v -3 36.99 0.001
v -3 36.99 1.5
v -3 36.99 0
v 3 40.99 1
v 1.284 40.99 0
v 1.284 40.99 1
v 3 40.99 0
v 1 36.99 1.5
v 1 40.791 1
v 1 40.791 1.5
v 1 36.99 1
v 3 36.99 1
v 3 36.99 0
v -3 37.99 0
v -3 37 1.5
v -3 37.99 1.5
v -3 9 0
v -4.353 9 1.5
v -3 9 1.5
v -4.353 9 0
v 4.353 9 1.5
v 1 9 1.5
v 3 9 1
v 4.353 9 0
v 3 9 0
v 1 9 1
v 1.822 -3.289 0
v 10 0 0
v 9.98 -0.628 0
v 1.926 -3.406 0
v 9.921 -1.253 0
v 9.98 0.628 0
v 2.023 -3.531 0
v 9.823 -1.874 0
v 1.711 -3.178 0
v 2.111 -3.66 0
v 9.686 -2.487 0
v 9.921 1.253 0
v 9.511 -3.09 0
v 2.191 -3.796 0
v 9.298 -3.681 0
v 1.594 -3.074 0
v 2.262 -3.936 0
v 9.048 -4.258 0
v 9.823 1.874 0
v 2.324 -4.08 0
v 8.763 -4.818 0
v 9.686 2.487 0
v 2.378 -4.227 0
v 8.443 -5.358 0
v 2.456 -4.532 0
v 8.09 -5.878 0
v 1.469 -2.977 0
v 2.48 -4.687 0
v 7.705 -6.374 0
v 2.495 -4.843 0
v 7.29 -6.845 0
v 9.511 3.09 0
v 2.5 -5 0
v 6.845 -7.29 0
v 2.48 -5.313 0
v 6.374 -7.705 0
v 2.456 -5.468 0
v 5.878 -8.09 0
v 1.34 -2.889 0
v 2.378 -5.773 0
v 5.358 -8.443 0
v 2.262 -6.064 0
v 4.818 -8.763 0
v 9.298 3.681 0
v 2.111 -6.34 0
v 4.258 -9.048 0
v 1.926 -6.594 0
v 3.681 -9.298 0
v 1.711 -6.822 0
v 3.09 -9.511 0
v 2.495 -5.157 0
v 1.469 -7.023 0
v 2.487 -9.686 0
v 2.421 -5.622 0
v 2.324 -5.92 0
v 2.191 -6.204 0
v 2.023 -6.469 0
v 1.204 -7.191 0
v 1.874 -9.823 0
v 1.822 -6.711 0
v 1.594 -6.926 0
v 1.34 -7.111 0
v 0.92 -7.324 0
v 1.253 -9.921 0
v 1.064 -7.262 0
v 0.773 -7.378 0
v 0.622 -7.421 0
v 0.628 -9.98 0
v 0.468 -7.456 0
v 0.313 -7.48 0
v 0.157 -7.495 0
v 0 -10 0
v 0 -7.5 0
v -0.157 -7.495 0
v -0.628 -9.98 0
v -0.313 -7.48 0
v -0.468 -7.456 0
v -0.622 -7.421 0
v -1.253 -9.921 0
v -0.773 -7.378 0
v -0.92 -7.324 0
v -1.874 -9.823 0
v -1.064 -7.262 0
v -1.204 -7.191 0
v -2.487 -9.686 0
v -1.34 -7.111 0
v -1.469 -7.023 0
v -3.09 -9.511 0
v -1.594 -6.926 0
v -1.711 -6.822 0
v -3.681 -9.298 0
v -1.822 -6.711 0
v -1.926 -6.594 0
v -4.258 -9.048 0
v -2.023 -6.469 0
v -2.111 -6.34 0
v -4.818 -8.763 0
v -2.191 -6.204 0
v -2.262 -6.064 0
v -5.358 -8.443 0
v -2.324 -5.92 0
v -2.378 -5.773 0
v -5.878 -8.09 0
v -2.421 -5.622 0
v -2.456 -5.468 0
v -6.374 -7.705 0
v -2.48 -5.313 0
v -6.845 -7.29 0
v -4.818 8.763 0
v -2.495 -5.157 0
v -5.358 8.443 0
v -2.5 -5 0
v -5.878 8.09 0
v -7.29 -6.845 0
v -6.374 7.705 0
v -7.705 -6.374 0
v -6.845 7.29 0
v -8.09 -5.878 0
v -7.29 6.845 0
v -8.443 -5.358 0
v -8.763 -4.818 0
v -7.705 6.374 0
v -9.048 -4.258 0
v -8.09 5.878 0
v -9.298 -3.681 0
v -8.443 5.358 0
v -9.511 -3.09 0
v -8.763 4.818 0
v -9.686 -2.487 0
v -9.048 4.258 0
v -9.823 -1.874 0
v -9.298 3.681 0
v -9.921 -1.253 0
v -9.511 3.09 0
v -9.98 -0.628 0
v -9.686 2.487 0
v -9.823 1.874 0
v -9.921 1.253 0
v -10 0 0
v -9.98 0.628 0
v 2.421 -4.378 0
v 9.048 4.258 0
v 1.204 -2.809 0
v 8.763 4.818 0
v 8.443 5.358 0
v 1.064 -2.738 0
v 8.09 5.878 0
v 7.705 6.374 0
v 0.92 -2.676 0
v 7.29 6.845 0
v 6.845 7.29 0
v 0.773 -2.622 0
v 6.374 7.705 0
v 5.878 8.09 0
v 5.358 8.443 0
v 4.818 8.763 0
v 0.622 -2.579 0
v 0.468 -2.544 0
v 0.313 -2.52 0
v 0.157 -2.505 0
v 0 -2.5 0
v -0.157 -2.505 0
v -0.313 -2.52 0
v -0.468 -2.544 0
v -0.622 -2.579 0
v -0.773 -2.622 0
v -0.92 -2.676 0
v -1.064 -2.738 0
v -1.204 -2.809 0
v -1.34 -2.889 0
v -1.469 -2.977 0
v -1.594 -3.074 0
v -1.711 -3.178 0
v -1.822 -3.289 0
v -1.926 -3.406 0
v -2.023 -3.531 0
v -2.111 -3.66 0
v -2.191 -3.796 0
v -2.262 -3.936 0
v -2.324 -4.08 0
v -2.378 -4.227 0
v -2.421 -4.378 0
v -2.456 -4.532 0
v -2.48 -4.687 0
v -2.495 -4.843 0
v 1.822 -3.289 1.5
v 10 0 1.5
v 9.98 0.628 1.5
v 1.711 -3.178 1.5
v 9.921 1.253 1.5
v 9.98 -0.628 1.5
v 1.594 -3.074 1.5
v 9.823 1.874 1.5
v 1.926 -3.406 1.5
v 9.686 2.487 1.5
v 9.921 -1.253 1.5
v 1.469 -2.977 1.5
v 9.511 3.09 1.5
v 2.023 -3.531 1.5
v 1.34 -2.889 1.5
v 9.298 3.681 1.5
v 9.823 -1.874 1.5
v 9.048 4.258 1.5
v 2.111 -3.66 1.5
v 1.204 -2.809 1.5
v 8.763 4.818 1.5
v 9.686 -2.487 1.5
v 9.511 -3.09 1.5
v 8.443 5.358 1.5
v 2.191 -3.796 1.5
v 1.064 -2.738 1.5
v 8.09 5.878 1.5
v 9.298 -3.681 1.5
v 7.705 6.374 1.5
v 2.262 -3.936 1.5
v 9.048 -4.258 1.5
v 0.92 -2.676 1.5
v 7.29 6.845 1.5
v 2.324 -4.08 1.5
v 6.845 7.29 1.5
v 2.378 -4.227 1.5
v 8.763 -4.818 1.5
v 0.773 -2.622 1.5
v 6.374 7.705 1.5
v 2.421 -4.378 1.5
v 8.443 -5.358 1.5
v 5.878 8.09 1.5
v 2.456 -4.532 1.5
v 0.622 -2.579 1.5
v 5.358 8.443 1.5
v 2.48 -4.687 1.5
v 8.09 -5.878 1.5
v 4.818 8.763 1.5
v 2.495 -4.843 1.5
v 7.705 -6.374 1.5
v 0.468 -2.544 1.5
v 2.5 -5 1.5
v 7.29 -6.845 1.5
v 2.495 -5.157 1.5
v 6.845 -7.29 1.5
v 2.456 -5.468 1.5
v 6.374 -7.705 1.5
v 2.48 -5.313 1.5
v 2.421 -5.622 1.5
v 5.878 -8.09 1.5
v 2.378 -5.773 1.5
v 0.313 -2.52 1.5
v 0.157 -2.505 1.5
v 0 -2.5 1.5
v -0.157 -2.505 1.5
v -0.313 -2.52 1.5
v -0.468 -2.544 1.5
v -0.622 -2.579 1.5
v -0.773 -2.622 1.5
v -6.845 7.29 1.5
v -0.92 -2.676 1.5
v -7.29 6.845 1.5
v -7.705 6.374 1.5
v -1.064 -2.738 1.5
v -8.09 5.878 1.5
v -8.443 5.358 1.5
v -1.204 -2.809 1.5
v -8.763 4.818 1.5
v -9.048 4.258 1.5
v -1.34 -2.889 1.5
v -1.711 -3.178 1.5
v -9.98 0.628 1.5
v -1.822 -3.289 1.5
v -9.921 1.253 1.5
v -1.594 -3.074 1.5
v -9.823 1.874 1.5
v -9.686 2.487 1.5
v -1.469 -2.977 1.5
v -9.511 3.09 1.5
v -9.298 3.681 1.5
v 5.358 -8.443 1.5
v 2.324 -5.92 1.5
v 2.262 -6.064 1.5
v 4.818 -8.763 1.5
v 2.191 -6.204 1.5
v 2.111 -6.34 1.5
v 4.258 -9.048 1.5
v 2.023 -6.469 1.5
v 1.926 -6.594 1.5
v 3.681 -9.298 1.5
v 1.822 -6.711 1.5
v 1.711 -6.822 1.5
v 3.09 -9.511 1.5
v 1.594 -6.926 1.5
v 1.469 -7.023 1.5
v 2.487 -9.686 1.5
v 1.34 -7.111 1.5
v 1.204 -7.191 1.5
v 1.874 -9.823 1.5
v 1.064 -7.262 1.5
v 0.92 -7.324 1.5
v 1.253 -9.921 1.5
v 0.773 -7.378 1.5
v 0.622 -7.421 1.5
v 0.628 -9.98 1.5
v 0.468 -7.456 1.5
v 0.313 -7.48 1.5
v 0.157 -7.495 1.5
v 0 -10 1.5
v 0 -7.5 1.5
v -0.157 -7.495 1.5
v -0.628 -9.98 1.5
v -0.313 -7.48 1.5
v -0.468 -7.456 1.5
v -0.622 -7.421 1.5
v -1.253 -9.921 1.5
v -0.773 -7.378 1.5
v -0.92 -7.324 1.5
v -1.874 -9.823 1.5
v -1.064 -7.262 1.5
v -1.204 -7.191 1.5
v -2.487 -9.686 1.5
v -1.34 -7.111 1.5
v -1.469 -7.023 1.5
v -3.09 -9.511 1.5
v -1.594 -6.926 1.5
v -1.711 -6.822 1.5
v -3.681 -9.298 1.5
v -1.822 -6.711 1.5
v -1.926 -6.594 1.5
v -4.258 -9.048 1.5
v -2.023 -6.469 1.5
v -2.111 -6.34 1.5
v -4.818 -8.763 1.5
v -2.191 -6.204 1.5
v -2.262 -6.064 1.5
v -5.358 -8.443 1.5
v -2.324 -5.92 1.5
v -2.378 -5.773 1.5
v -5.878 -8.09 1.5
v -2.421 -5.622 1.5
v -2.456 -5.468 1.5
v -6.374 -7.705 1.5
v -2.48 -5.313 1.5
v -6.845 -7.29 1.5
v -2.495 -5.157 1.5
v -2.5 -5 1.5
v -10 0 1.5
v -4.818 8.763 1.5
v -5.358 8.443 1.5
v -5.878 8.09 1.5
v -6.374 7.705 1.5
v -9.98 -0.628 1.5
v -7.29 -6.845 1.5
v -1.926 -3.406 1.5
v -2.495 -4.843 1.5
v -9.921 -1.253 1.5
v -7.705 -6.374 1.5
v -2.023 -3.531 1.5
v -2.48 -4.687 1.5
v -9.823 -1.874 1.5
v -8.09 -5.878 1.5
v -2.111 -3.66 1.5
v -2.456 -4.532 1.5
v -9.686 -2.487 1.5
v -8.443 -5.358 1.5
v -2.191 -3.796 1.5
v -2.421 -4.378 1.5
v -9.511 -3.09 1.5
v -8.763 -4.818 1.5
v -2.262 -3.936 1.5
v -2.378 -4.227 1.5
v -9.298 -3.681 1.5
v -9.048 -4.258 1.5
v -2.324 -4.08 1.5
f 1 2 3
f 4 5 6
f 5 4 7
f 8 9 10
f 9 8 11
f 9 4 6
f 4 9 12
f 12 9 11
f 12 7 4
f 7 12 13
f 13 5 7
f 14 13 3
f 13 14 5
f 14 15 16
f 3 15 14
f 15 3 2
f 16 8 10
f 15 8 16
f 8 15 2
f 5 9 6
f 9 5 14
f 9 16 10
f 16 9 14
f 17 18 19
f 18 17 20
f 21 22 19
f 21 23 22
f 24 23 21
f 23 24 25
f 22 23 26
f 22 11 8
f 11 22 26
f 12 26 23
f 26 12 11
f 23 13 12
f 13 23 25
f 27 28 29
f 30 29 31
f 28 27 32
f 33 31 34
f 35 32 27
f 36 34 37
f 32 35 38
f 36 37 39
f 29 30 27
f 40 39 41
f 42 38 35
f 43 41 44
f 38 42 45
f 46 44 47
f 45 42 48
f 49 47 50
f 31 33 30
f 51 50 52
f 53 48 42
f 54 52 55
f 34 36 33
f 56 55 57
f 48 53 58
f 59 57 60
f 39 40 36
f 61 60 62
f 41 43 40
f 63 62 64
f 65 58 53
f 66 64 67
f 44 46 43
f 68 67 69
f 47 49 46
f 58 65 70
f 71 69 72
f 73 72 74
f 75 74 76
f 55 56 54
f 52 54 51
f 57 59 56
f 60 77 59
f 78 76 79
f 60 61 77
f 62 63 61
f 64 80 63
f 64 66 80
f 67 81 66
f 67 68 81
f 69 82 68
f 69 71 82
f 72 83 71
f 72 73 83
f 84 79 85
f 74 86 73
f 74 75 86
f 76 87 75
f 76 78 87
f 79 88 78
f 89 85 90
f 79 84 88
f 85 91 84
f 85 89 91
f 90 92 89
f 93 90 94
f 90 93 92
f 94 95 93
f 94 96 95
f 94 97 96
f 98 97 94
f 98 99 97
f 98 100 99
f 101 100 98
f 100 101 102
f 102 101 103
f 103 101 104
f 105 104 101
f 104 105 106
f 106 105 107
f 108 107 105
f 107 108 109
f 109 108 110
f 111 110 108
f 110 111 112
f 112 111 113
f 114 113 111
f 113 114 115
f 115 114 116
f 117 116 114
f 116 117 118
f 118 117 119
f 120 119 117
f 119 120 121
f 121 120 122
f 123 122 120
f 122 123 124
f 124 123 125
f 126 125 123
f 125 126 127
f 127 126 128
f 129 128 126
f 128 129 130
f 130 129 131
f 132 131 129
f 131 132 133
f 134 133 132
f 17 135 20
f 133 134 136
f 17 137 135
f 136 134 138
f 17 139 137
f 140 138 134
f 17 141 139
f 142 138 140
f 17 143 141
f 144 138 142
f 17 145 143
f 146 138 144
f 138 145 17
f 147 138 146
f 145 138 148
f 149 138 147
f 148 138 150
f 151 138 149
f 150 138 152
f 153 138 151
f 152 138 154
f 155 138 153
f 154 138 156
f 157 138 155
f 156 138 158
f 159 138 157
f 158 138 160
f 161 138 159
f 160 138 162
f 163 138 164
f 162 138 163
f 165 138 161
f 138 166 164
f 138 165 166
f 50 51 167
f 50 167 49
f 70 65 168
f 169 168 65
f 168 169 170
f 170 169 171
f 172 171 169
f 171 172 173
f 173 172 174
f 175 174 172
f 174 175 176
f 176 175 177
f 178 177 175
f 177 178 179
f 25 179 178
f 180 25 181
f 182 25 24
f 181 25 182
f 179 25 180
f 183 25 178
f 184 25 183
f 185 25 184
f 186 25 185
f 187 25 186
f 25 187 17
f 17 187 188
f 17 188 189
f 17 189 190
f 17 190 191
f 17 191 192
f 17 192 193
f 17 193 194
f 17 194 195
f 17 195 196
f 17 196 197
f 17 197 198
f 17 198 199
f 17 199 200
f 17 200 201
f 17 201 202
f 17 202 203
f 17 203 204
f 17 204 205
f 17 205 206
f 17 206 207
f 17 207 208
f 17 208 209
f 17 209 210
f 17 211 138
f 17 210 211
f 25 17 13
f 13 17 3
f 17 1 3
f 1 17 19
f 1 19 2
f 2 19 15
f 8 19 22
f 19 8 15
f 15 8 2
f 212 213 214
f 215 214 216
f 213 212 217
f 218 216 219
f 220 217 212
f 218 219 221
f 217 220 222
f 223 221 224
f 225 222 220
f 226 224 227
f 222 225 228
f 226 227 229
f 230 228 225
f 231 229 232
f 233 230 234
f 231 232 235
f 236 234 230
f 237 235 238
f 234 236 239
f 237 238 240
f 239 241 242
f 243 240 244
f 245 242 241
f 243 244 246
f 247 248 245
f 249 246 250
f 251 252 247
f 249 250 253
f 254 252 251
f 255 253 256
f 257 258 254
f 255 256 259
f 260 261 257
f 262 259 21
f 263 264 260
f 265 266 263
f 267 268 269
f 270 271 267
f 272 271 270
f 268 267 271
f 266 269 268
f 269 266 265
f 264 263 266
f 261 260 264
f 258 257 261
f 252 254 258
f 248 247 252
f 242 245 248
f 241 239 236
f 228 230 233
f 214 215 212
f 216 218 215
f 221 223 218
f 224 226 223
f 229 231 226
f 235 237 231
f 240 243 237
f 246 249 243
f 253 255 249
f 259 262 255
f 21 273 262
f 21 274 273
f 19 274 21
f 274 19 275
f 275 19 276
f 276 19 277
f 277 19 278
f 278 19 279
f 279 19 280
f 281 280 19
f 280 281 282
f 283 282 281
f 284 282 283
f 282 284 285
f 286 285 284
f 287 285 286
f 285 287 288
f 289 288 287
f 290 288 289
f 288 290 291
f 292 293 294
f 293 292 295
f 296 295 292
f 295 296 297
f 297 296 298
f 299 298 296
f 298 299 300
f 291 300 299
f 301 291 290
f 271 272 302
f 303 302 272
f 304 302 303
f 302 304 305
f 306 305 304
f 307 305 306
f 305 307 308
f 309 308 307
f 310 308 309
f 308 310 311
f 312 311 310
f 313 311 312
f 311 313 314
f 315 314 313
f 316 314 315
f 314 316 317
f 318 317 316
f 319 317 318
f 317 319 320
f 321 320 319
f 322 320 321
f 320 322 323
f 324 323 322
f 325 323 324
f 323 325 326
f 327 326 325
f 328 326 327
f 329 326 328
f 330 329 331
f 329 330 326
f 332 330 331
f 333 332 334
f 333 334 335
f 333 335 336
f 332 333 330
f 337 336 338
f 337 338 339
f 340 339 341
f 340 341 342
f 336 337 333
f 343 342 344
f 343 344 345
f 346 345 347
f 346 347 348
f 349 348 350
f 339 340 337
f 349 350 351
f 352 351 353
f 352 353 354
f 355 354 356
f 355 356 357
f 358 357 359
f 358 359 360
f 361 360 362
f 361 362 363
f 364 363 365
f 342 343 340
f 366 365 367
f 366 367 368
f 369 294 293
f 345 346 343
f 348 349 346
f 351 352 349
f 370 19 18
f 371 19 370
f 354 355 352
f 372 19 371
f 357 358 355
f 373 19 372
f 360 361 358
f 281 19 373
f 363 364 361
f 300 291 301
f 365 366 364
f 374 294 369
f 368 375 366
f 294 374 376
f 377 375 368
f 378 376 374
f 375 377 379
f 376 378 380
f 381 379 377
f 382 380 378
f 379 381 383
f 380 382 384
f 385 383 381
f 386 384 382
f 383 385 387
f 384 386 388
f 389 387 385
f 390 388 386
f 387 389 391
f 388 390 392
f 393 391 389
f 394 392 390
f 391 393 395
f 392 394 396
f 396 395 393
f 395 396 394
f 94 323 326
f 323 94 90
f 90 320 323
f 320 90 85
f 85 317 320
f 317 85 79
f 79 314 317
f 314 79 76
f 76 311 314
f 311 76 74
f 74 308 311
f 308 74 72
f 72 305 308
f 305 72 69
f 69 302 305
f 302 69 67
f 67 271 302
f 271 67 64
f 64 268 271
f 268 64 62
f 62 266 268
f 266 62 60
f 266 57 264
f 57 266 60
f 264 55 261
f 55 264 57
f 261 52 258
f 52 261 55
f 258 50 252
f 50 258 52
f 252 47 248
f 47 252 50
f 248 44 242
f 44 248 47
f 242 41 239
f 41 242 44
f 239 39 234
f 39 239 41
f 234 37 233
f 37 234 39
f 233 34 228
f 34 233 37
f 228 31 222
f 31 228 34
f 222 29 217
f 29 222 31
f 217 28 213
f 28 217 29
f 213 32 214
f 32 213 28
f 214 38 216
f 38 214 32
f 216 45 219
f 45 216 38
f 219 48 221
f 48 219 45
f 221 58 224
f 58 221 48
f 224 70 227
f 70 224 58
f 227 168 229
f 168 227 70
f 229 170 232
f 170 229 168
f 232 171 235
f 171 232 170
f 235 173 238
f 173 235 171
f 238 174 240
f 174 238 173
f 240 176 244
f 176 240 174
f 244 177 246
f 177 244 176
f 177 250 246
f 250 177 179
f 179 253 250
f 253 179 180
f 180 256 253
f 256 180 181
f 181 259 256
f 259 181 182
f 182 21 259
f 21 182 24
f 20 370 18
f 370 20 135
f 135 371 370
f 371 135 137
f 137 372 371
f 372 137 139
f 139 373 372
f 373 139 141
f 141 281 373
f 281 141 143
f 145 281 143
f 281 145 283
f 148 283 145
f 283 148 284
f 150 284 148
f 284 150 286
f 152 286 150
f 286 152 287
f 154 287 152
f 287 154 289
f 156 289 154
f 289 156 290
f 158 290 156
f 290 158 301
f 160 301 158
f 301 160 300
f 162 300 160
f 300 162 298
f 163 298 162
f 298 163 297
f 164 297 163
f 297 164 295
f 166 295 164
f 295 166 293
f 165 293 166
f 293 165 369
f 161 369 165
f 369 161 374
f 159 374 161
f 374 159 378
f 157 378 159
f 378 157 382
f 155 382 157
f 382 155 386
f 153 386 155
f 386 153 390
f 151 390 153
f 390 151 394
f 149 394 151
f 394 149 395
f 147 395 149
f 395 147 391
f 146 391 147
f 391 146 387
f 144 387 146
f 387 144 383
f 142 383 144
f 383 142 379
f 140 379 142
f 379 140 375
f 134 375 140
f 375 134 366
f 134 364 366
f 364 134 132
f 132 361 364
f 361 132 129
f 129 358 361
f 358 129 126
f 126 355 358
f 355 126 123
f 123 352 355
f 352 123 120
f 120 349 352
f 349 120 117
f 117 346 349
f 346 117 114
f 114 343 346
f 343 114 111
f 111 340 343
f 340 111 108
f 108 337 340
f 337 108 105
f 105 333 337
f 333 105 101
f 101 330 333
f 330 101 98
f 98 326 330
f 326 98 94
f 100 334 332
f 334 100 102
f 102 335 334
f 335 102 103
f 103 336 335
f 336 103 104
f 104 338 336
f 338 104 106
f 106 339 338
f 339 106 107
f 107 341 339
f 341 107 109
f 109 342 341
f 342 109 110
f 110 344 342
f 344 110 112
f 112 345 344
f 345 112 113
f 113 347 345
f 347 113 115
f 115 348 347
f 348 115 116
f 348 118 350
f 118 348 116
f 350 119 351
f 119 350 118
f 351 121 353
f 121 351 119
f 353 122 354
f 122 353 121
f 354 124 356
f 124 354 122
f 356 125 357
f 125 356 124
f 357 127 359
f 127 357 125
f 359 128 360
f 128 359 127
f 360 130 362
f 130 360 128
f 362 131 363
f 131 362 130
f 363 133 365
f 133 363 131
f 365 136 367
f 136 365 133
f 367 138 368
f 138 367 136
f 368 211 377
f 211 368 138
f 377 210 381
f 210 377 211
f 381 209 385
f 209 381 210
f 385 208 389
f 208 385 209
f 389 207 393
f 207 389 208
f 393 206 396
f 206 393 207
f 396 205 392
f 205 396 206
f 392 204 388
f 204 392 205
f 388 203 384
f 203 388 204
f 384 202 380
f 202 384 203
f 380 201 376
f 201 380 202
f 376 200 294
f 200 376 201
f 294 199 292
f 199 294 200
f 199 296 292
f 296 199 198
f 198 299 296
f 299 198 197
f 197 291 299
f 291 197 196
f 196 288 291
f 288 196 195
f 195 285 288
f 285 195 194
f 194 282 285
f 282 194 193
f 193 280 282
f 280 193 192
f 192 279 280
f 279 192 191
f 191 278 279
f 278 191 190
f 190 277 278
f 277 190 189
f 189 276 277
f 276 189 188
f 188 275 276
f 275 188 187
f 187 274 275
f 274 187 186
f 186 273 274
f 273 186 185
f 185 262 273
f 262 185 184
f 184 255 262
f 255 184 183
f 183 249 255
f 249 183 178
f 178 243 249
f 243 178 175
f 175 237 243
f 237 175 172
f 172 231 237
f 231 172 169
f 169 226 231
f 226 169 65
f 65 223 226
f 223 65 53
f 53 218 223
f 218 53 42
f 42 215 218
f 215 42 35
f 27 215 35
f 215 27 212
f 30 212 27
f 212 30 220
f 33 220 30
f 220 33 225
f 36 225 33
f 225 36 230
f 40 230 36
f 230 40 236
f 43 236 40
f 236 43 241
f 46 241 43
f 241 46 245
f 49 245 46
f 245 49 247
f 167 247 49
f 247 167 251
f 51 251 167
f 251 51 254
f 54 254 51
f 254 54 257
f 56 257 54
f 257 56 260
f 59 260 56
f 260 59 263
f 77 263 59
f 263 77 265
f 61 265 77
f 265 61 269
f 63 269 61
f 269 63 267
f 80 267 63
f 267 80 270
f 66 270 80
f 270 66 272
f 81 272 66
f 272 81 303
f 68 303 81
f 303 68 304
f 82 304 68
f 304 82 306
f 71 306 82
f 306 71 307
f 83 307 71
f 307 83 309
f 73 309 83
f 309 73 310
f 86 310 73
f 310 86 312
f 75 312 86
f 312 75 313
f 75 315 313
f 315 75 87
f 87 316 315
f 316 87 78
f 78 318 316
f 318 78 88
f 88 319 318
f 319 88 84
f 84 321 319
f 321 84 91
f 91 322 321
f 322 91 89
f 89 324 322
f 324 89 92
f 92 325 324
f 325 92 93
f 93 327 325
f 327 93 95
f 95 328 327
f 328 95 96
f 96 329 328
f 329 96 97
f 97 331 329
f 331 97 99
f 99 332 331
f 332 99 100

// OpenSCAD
SHAFT_LENGTH = 28;
BOW_FLAT = 9;

module keyShaftEnd(length){
    difference(){
      keyShaft(length);
      translate([-0.1,0,length-3])
        rotate([35,0,0])
          cube([1.7,10,10]);

    }
}

module keyShaft(length){
    linear_extrude(height=length)
      polygon([[0,0],[0,6],[1,6],[1,4],[1.5,4],[1.5,0]]);
}

module keyBow(){
  linear_extrude(height=1.5)  
      difference(){
        circle(d=20,$fn=100); 
        translate([-10,BOW_FLAT,0])  
          square([20,10]);
        translate([0,-5,0])    
          circle(d=5,$fn=100);  
      }
}

module key(){
   translate([-3,BOW_FLAT,0]) 
     rotate([-90,-90,0])
       keyShaft(SHAFT_LENGTH);
   translate([-3,BOW_FLAT+SHAFT_LENGTH-0.01,0]) 
     rotate([-90,-90,0])
       keyShaftEnd(4); 
   keyBow();    
}

key();
